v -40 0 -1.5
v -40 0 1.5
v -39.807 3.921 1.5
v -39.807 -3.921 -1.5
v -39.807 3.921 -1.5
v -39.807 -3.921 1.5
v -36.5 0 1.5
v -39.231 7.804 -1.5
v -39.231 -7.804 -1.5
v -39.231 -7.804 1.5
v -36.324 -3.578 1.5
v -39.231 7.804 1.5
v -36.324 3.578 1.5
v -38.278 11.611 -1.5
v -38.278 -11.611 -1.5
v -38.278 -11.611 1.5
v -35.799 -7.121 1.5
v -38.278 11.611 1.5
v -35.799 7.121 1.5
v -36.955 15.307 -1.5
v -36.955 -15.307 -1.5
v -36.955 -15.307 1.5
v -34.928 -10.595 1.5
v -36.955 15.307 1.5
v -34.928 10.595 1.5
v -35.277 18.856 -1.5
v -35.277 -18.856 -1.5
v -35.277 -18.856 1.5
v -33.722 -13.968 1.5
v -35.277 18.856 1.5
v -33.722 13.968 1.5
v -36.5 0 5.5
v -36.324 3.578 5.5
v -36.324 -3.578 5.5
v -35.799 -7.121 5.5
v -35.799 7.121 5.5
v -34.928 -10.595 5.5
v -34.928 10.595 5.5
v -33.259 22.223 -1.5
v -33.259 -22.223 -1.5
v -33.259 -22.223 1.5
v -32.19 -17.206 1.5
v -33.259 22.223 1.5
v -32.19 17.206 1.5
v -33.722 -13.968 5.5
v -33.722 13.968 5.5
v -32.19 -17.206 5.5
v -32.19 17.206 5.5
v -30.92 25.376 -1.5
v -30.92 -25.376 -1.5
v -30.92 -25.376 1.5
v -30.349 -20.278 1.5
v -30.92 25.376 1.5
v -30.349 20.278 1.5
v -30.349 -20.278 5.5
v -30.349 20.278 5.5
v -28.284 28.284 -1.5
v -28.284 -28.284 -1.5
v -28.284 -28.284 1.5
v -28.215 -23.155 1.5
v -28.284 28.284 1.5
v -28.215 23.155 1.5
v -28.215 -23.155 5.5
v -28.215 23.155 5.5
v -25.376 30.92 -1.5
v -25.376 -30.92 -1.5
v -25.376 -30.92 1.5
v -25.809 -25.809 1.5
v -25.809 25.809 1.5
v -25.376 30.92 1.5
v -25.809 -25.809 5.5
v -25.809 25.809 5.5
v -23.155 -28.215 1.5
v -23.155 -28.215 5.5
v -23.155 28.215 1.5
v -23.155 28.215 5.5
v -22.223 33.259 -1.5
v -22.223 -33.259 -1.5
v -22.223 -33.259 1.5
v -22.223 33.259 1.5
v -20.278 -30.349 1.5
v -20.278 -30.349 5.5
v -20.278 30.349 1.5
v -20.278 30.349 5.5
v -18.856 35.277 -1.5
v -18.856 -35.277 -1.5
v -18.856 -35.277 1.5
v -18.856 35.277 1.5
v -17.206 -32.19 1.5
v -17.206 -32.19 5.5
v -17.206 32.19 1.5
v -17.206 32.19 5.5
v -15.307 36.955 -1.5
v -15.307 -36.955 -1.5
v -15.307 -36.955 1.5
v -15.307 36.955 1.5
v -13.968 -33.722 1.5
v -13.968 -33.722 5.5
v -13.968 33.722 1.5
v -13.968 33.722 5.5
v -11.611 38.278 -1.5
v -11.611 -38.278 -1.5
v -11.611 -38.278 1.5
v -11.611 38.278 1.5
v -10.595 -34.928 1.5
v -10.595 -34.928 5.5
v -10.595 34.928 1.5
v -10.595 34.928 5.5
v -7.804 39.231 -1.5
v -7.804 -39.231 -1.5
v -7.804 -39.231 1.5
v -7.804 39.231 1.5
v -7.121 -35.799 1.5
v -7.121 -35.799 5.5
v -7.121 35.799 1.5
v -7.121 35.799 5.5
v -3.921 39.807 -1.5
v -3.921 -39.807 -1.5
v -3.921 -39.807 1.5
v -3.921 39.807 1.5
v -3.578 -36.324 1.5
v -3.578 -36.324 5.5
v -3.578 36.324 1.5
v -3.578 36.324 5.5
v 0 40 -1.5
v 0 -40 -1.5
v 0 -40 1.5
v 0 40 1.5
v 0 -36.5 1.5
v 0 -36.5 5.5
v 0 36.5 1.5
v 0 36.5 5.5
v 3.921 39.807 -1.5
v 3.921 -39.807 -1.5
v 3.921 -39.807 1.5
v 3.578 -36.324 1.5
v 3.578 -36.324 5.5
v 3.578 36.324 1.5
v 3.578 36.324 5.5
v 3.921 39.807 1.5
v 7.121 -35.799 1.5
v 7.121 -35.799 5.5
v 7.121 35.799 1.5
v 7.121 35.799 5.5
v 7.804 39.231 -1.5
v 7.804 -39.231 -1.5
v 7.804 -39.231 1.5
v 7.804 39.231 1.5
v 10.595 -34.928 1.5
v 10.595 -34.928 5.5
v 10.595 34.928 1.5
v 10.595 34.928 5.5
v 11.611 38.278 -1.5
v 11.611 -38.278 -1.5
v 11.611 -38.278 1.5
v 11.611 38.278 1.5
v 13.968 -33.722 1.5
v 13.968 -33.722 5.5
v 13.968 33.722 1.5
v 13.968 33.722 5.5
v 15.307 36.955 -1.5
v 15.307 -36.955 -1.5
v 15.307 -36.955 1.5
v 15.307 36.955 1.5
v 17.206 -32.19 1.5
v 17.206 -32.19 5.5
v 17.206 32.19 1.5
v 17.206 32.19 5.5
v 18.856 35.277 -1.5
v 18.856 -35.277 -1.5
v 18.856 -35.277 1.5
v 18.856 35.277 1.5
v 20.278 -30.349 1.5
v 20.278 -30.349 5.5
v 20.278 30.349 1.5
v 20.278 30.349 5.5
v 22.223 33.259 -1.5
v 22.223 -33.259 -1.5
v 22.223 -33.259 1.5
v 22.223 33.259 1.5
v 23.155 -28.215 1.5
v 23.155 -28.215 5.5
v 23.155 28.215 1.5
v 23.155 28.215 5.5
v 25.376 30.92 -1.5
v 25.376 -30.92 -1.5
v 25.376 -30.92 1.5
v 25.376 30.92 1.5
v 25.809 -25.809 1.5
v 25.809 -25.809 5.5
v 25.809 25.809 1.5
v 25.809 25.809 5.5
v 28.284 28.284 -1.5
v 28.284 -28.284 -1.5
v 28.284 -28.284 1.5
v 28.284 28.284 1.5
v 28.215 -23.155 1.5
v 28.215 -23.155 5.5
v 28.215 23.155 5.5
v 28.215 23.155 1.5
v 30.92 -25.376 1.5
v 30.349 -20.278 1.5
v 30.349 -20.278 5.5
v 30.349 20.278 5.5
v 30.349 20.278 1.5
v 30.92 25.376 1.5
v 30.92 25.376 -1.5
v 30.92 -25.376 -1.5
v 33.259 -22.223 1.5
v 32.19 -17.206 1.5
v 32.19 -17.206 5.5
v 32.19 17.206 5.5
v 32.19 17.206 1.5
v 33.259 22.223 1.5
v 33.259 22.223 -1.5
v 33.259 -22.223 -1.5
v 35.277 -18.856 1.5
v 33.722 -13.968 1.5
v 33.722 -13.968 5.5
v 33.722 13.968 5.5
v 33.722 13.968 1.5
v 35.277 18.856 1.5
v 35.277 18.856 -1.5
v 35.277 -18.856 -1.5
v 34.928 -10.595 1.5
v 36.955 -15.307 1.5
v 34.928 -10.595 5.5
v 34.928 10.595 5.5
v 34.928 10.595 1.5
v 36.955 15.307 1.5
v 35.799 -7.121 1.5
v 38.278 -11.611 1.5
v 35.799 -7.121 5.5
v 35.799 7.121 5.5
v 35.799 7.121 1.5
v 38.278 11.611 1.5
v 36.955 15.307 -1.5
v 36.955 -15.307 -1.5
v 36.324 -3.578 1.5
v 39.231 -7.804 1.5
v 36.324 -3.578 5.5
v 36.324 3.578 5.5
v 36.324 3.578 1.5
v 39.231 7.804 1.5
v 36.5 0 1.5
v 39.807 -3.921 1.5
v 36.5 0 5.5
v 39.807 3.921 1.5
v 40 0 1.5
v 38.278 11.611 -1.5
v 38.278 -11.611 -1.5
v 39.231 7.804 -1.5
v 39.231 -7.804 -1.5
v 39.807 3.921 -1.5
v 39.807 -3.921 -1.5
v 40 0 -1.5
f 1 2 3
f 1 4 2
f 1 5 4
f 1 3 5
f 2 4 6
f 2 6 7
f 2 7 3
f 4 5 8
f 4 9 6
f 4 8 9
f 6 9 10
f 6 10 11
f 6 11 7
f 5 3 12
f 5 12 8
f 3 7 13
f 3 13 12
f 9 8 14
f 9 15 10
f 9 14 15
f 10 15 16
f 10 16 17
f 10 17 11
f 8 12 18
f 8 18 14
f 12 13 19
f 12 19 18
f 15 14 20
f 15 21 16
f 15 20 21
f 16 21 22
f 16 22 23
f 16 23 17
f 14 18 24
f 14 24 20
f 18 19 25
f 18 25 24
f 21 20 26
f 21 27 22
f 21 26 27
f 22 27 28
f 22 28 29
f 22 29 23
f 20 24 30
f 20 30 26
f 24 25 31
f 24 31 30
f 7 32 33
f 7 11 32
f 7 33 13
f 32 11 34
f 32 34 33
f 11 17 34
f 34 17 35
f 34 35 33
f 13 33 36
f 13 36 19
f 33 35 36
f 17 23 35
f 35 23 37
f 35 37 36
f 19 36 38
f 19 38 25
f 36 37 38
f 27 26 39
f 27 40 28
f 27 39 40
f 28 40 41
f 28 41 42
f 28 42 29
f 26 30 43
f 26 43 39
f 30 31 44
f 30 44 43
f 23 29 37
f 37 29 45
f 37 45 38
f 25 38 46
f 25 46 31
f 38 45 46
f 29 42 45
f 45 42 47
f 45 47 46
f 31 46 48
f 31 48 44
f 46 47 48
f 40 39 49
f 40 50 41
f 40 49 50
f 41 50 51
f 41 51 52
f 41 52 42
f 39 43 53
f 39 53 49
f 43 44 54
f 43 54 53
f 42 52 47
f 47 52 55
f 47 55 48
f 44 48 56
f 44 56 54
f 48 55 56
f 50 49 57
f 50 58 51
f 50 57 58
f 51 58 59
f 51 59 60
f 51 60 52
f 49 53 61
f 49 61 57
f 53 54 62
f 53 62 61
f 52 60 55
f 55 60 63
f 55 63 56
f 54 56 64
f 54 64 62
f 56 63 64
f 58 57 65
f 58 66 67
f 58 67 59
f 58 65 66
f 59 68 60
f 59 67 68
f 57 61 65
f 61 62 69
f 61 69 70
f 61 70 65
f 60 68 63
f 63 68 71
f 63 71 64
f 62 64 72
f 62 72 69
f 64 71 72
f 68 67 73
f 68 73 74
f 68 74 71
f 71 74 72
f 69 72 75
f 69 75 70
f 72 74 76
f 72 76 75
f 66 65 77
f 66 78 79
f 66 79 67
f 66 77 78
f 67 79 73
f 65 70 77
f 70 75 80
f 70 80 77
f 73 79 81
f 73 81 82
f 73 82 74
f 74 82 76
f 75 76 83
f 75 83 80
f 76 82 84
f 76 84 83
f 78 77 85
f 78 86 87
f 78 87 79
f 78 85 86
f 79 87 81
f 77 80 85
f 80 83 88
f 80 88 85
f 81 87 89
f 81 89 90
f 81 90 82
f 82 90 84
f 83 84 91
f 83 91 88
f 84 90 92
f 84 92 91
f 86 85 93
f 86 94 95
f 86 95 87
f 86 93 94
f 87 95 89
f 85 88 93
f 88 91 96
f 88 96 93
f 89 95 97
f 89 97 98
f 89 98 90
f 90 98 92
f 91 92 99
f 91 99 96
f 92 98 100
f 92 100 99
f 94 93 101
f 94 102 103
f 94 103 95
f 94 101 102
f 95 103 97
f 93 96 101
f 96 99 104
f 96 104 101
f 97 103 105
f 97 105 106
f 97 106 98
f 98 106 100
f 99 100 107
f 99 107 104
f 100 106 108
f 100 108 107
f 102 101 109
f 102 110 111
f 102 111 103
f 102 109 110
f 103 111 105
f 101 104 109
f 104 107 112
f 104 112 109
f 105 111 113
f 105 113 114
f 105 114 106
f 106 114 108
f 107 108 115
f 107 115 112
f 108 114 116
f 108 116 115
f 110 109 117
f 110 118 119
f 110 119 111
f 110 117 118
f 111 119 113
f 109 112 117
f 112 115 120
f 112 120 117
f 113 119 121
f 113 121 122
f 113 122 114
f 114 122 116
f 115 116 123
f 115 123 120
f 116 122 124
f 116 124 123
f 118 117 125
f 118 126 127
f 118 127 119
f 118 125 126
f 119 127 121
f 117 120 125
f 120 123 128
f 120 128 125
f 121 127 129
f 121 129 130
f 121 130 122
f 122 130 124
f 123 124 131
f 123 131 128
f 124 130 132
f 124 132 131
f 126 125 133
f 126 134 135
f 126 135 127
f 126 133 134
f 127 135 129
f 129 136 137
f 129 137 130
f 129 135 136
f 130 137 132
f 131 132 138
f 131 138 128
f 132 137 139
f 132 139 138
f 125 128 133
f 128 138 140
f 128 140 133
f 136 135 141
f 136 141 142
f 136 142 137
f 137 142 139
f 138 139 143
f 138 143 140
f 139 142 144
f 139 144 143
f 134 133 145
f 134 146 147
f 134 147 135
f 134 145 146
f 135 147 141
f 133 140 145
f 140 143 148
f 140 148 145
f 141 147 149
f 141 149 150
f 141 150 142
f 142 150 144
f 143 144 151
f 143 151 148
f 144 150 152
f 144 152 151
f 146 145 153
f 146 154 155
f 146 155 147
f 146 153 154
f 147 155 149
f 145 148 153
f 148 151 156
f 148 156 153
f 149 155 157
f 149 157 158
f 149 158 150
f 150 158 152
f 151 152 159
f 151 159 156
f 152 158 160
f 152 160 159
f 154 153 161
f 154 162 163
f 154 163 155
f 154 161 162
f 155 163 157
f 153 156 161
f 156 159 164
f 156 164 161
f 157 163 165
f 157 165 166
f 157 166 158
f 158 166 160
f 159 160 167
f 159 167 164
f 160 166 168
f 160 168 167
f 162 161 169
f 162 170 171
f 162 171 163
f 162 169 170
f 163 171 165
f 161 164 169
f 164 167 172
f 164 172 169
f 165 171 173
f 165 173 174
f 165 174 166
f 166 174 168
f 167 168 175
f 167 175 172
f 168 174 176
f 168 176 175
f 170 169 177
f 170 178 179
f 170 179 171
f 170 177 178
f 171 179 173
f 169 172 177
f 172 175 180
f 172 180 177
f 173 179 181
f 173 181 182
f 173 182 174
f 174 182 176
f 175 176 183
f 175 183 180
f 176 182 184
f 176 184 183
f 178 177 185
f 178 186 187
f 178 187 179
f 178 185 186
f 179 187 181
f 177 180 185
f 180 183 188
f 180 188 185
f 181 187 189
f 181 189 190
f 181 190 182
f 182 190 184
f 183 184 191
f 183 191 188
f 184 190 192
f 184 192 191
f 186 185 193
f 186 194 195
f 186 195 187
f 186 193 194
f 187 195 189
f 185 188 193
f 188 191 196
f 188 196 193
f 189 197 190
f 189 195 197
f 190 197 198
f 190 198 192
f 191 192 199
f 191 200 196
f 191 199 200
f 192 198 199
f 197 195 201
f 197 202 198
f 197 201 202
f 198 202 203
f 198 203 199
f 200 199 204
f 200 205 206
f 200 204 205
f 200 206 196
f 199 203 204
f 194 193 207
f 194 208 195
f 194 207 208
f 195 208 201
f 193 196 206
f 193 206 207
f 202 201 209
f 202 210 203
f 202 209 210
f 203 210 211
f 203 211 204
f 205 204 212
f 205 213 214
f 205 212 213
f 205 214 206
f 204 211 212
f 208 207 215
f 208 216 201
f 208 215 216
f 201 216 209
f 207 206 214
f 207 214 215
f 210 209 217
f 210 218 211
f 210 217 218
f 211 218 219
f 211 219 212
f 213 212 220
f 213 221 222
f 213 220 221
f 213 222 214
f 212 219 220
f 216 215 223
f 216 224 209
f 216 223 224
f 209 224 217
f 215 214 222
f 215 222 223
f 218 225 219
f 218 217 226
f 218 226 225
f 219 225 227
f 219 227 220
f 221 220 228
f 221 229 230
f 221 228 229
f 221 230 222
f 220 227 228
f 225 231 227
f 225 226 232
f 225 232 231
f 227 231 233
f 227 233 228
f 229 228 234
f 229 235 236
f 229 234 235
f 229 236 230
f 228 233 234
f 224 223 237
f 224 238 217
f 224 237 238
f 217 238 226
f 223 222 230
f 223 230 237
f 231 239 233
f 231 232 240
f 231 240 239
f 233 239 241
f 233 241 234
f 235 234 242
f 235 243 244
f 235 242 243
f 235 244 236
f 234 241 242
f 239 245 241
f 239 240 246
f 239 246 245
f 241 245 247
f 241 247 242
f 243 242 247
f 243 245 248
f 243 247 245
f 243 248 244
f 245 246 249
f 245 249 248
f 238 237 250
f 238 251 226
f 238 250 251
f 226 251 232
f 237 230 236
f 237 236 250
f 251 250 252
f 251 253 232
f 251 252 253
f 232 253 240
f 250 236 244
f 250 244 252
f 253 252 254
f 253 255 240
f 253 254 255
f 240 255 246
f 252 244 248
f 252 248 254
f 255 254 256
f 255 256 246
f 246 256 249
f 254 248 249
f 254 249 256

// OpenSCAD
// lid for the senseo pad storage
// 07.09.2025 Sebastian Weigl

// set the fregment sizes
$fn = $preview ? 48 : 64;
// declare vars
//  first body
fir_body_height=3;
fir_body_diameter=80;
//  second body
sec_body_height=5;
sec_body_diameter=73;

// bottom piece
union() {
color("blue")
cylinder(h=fir_body_height,d=fir_body_diameter,center=true);

color("red")
translate([0,0,3])
  cylinder(h=sec_body_height,d=sec_body_diameter,center=true);
}
